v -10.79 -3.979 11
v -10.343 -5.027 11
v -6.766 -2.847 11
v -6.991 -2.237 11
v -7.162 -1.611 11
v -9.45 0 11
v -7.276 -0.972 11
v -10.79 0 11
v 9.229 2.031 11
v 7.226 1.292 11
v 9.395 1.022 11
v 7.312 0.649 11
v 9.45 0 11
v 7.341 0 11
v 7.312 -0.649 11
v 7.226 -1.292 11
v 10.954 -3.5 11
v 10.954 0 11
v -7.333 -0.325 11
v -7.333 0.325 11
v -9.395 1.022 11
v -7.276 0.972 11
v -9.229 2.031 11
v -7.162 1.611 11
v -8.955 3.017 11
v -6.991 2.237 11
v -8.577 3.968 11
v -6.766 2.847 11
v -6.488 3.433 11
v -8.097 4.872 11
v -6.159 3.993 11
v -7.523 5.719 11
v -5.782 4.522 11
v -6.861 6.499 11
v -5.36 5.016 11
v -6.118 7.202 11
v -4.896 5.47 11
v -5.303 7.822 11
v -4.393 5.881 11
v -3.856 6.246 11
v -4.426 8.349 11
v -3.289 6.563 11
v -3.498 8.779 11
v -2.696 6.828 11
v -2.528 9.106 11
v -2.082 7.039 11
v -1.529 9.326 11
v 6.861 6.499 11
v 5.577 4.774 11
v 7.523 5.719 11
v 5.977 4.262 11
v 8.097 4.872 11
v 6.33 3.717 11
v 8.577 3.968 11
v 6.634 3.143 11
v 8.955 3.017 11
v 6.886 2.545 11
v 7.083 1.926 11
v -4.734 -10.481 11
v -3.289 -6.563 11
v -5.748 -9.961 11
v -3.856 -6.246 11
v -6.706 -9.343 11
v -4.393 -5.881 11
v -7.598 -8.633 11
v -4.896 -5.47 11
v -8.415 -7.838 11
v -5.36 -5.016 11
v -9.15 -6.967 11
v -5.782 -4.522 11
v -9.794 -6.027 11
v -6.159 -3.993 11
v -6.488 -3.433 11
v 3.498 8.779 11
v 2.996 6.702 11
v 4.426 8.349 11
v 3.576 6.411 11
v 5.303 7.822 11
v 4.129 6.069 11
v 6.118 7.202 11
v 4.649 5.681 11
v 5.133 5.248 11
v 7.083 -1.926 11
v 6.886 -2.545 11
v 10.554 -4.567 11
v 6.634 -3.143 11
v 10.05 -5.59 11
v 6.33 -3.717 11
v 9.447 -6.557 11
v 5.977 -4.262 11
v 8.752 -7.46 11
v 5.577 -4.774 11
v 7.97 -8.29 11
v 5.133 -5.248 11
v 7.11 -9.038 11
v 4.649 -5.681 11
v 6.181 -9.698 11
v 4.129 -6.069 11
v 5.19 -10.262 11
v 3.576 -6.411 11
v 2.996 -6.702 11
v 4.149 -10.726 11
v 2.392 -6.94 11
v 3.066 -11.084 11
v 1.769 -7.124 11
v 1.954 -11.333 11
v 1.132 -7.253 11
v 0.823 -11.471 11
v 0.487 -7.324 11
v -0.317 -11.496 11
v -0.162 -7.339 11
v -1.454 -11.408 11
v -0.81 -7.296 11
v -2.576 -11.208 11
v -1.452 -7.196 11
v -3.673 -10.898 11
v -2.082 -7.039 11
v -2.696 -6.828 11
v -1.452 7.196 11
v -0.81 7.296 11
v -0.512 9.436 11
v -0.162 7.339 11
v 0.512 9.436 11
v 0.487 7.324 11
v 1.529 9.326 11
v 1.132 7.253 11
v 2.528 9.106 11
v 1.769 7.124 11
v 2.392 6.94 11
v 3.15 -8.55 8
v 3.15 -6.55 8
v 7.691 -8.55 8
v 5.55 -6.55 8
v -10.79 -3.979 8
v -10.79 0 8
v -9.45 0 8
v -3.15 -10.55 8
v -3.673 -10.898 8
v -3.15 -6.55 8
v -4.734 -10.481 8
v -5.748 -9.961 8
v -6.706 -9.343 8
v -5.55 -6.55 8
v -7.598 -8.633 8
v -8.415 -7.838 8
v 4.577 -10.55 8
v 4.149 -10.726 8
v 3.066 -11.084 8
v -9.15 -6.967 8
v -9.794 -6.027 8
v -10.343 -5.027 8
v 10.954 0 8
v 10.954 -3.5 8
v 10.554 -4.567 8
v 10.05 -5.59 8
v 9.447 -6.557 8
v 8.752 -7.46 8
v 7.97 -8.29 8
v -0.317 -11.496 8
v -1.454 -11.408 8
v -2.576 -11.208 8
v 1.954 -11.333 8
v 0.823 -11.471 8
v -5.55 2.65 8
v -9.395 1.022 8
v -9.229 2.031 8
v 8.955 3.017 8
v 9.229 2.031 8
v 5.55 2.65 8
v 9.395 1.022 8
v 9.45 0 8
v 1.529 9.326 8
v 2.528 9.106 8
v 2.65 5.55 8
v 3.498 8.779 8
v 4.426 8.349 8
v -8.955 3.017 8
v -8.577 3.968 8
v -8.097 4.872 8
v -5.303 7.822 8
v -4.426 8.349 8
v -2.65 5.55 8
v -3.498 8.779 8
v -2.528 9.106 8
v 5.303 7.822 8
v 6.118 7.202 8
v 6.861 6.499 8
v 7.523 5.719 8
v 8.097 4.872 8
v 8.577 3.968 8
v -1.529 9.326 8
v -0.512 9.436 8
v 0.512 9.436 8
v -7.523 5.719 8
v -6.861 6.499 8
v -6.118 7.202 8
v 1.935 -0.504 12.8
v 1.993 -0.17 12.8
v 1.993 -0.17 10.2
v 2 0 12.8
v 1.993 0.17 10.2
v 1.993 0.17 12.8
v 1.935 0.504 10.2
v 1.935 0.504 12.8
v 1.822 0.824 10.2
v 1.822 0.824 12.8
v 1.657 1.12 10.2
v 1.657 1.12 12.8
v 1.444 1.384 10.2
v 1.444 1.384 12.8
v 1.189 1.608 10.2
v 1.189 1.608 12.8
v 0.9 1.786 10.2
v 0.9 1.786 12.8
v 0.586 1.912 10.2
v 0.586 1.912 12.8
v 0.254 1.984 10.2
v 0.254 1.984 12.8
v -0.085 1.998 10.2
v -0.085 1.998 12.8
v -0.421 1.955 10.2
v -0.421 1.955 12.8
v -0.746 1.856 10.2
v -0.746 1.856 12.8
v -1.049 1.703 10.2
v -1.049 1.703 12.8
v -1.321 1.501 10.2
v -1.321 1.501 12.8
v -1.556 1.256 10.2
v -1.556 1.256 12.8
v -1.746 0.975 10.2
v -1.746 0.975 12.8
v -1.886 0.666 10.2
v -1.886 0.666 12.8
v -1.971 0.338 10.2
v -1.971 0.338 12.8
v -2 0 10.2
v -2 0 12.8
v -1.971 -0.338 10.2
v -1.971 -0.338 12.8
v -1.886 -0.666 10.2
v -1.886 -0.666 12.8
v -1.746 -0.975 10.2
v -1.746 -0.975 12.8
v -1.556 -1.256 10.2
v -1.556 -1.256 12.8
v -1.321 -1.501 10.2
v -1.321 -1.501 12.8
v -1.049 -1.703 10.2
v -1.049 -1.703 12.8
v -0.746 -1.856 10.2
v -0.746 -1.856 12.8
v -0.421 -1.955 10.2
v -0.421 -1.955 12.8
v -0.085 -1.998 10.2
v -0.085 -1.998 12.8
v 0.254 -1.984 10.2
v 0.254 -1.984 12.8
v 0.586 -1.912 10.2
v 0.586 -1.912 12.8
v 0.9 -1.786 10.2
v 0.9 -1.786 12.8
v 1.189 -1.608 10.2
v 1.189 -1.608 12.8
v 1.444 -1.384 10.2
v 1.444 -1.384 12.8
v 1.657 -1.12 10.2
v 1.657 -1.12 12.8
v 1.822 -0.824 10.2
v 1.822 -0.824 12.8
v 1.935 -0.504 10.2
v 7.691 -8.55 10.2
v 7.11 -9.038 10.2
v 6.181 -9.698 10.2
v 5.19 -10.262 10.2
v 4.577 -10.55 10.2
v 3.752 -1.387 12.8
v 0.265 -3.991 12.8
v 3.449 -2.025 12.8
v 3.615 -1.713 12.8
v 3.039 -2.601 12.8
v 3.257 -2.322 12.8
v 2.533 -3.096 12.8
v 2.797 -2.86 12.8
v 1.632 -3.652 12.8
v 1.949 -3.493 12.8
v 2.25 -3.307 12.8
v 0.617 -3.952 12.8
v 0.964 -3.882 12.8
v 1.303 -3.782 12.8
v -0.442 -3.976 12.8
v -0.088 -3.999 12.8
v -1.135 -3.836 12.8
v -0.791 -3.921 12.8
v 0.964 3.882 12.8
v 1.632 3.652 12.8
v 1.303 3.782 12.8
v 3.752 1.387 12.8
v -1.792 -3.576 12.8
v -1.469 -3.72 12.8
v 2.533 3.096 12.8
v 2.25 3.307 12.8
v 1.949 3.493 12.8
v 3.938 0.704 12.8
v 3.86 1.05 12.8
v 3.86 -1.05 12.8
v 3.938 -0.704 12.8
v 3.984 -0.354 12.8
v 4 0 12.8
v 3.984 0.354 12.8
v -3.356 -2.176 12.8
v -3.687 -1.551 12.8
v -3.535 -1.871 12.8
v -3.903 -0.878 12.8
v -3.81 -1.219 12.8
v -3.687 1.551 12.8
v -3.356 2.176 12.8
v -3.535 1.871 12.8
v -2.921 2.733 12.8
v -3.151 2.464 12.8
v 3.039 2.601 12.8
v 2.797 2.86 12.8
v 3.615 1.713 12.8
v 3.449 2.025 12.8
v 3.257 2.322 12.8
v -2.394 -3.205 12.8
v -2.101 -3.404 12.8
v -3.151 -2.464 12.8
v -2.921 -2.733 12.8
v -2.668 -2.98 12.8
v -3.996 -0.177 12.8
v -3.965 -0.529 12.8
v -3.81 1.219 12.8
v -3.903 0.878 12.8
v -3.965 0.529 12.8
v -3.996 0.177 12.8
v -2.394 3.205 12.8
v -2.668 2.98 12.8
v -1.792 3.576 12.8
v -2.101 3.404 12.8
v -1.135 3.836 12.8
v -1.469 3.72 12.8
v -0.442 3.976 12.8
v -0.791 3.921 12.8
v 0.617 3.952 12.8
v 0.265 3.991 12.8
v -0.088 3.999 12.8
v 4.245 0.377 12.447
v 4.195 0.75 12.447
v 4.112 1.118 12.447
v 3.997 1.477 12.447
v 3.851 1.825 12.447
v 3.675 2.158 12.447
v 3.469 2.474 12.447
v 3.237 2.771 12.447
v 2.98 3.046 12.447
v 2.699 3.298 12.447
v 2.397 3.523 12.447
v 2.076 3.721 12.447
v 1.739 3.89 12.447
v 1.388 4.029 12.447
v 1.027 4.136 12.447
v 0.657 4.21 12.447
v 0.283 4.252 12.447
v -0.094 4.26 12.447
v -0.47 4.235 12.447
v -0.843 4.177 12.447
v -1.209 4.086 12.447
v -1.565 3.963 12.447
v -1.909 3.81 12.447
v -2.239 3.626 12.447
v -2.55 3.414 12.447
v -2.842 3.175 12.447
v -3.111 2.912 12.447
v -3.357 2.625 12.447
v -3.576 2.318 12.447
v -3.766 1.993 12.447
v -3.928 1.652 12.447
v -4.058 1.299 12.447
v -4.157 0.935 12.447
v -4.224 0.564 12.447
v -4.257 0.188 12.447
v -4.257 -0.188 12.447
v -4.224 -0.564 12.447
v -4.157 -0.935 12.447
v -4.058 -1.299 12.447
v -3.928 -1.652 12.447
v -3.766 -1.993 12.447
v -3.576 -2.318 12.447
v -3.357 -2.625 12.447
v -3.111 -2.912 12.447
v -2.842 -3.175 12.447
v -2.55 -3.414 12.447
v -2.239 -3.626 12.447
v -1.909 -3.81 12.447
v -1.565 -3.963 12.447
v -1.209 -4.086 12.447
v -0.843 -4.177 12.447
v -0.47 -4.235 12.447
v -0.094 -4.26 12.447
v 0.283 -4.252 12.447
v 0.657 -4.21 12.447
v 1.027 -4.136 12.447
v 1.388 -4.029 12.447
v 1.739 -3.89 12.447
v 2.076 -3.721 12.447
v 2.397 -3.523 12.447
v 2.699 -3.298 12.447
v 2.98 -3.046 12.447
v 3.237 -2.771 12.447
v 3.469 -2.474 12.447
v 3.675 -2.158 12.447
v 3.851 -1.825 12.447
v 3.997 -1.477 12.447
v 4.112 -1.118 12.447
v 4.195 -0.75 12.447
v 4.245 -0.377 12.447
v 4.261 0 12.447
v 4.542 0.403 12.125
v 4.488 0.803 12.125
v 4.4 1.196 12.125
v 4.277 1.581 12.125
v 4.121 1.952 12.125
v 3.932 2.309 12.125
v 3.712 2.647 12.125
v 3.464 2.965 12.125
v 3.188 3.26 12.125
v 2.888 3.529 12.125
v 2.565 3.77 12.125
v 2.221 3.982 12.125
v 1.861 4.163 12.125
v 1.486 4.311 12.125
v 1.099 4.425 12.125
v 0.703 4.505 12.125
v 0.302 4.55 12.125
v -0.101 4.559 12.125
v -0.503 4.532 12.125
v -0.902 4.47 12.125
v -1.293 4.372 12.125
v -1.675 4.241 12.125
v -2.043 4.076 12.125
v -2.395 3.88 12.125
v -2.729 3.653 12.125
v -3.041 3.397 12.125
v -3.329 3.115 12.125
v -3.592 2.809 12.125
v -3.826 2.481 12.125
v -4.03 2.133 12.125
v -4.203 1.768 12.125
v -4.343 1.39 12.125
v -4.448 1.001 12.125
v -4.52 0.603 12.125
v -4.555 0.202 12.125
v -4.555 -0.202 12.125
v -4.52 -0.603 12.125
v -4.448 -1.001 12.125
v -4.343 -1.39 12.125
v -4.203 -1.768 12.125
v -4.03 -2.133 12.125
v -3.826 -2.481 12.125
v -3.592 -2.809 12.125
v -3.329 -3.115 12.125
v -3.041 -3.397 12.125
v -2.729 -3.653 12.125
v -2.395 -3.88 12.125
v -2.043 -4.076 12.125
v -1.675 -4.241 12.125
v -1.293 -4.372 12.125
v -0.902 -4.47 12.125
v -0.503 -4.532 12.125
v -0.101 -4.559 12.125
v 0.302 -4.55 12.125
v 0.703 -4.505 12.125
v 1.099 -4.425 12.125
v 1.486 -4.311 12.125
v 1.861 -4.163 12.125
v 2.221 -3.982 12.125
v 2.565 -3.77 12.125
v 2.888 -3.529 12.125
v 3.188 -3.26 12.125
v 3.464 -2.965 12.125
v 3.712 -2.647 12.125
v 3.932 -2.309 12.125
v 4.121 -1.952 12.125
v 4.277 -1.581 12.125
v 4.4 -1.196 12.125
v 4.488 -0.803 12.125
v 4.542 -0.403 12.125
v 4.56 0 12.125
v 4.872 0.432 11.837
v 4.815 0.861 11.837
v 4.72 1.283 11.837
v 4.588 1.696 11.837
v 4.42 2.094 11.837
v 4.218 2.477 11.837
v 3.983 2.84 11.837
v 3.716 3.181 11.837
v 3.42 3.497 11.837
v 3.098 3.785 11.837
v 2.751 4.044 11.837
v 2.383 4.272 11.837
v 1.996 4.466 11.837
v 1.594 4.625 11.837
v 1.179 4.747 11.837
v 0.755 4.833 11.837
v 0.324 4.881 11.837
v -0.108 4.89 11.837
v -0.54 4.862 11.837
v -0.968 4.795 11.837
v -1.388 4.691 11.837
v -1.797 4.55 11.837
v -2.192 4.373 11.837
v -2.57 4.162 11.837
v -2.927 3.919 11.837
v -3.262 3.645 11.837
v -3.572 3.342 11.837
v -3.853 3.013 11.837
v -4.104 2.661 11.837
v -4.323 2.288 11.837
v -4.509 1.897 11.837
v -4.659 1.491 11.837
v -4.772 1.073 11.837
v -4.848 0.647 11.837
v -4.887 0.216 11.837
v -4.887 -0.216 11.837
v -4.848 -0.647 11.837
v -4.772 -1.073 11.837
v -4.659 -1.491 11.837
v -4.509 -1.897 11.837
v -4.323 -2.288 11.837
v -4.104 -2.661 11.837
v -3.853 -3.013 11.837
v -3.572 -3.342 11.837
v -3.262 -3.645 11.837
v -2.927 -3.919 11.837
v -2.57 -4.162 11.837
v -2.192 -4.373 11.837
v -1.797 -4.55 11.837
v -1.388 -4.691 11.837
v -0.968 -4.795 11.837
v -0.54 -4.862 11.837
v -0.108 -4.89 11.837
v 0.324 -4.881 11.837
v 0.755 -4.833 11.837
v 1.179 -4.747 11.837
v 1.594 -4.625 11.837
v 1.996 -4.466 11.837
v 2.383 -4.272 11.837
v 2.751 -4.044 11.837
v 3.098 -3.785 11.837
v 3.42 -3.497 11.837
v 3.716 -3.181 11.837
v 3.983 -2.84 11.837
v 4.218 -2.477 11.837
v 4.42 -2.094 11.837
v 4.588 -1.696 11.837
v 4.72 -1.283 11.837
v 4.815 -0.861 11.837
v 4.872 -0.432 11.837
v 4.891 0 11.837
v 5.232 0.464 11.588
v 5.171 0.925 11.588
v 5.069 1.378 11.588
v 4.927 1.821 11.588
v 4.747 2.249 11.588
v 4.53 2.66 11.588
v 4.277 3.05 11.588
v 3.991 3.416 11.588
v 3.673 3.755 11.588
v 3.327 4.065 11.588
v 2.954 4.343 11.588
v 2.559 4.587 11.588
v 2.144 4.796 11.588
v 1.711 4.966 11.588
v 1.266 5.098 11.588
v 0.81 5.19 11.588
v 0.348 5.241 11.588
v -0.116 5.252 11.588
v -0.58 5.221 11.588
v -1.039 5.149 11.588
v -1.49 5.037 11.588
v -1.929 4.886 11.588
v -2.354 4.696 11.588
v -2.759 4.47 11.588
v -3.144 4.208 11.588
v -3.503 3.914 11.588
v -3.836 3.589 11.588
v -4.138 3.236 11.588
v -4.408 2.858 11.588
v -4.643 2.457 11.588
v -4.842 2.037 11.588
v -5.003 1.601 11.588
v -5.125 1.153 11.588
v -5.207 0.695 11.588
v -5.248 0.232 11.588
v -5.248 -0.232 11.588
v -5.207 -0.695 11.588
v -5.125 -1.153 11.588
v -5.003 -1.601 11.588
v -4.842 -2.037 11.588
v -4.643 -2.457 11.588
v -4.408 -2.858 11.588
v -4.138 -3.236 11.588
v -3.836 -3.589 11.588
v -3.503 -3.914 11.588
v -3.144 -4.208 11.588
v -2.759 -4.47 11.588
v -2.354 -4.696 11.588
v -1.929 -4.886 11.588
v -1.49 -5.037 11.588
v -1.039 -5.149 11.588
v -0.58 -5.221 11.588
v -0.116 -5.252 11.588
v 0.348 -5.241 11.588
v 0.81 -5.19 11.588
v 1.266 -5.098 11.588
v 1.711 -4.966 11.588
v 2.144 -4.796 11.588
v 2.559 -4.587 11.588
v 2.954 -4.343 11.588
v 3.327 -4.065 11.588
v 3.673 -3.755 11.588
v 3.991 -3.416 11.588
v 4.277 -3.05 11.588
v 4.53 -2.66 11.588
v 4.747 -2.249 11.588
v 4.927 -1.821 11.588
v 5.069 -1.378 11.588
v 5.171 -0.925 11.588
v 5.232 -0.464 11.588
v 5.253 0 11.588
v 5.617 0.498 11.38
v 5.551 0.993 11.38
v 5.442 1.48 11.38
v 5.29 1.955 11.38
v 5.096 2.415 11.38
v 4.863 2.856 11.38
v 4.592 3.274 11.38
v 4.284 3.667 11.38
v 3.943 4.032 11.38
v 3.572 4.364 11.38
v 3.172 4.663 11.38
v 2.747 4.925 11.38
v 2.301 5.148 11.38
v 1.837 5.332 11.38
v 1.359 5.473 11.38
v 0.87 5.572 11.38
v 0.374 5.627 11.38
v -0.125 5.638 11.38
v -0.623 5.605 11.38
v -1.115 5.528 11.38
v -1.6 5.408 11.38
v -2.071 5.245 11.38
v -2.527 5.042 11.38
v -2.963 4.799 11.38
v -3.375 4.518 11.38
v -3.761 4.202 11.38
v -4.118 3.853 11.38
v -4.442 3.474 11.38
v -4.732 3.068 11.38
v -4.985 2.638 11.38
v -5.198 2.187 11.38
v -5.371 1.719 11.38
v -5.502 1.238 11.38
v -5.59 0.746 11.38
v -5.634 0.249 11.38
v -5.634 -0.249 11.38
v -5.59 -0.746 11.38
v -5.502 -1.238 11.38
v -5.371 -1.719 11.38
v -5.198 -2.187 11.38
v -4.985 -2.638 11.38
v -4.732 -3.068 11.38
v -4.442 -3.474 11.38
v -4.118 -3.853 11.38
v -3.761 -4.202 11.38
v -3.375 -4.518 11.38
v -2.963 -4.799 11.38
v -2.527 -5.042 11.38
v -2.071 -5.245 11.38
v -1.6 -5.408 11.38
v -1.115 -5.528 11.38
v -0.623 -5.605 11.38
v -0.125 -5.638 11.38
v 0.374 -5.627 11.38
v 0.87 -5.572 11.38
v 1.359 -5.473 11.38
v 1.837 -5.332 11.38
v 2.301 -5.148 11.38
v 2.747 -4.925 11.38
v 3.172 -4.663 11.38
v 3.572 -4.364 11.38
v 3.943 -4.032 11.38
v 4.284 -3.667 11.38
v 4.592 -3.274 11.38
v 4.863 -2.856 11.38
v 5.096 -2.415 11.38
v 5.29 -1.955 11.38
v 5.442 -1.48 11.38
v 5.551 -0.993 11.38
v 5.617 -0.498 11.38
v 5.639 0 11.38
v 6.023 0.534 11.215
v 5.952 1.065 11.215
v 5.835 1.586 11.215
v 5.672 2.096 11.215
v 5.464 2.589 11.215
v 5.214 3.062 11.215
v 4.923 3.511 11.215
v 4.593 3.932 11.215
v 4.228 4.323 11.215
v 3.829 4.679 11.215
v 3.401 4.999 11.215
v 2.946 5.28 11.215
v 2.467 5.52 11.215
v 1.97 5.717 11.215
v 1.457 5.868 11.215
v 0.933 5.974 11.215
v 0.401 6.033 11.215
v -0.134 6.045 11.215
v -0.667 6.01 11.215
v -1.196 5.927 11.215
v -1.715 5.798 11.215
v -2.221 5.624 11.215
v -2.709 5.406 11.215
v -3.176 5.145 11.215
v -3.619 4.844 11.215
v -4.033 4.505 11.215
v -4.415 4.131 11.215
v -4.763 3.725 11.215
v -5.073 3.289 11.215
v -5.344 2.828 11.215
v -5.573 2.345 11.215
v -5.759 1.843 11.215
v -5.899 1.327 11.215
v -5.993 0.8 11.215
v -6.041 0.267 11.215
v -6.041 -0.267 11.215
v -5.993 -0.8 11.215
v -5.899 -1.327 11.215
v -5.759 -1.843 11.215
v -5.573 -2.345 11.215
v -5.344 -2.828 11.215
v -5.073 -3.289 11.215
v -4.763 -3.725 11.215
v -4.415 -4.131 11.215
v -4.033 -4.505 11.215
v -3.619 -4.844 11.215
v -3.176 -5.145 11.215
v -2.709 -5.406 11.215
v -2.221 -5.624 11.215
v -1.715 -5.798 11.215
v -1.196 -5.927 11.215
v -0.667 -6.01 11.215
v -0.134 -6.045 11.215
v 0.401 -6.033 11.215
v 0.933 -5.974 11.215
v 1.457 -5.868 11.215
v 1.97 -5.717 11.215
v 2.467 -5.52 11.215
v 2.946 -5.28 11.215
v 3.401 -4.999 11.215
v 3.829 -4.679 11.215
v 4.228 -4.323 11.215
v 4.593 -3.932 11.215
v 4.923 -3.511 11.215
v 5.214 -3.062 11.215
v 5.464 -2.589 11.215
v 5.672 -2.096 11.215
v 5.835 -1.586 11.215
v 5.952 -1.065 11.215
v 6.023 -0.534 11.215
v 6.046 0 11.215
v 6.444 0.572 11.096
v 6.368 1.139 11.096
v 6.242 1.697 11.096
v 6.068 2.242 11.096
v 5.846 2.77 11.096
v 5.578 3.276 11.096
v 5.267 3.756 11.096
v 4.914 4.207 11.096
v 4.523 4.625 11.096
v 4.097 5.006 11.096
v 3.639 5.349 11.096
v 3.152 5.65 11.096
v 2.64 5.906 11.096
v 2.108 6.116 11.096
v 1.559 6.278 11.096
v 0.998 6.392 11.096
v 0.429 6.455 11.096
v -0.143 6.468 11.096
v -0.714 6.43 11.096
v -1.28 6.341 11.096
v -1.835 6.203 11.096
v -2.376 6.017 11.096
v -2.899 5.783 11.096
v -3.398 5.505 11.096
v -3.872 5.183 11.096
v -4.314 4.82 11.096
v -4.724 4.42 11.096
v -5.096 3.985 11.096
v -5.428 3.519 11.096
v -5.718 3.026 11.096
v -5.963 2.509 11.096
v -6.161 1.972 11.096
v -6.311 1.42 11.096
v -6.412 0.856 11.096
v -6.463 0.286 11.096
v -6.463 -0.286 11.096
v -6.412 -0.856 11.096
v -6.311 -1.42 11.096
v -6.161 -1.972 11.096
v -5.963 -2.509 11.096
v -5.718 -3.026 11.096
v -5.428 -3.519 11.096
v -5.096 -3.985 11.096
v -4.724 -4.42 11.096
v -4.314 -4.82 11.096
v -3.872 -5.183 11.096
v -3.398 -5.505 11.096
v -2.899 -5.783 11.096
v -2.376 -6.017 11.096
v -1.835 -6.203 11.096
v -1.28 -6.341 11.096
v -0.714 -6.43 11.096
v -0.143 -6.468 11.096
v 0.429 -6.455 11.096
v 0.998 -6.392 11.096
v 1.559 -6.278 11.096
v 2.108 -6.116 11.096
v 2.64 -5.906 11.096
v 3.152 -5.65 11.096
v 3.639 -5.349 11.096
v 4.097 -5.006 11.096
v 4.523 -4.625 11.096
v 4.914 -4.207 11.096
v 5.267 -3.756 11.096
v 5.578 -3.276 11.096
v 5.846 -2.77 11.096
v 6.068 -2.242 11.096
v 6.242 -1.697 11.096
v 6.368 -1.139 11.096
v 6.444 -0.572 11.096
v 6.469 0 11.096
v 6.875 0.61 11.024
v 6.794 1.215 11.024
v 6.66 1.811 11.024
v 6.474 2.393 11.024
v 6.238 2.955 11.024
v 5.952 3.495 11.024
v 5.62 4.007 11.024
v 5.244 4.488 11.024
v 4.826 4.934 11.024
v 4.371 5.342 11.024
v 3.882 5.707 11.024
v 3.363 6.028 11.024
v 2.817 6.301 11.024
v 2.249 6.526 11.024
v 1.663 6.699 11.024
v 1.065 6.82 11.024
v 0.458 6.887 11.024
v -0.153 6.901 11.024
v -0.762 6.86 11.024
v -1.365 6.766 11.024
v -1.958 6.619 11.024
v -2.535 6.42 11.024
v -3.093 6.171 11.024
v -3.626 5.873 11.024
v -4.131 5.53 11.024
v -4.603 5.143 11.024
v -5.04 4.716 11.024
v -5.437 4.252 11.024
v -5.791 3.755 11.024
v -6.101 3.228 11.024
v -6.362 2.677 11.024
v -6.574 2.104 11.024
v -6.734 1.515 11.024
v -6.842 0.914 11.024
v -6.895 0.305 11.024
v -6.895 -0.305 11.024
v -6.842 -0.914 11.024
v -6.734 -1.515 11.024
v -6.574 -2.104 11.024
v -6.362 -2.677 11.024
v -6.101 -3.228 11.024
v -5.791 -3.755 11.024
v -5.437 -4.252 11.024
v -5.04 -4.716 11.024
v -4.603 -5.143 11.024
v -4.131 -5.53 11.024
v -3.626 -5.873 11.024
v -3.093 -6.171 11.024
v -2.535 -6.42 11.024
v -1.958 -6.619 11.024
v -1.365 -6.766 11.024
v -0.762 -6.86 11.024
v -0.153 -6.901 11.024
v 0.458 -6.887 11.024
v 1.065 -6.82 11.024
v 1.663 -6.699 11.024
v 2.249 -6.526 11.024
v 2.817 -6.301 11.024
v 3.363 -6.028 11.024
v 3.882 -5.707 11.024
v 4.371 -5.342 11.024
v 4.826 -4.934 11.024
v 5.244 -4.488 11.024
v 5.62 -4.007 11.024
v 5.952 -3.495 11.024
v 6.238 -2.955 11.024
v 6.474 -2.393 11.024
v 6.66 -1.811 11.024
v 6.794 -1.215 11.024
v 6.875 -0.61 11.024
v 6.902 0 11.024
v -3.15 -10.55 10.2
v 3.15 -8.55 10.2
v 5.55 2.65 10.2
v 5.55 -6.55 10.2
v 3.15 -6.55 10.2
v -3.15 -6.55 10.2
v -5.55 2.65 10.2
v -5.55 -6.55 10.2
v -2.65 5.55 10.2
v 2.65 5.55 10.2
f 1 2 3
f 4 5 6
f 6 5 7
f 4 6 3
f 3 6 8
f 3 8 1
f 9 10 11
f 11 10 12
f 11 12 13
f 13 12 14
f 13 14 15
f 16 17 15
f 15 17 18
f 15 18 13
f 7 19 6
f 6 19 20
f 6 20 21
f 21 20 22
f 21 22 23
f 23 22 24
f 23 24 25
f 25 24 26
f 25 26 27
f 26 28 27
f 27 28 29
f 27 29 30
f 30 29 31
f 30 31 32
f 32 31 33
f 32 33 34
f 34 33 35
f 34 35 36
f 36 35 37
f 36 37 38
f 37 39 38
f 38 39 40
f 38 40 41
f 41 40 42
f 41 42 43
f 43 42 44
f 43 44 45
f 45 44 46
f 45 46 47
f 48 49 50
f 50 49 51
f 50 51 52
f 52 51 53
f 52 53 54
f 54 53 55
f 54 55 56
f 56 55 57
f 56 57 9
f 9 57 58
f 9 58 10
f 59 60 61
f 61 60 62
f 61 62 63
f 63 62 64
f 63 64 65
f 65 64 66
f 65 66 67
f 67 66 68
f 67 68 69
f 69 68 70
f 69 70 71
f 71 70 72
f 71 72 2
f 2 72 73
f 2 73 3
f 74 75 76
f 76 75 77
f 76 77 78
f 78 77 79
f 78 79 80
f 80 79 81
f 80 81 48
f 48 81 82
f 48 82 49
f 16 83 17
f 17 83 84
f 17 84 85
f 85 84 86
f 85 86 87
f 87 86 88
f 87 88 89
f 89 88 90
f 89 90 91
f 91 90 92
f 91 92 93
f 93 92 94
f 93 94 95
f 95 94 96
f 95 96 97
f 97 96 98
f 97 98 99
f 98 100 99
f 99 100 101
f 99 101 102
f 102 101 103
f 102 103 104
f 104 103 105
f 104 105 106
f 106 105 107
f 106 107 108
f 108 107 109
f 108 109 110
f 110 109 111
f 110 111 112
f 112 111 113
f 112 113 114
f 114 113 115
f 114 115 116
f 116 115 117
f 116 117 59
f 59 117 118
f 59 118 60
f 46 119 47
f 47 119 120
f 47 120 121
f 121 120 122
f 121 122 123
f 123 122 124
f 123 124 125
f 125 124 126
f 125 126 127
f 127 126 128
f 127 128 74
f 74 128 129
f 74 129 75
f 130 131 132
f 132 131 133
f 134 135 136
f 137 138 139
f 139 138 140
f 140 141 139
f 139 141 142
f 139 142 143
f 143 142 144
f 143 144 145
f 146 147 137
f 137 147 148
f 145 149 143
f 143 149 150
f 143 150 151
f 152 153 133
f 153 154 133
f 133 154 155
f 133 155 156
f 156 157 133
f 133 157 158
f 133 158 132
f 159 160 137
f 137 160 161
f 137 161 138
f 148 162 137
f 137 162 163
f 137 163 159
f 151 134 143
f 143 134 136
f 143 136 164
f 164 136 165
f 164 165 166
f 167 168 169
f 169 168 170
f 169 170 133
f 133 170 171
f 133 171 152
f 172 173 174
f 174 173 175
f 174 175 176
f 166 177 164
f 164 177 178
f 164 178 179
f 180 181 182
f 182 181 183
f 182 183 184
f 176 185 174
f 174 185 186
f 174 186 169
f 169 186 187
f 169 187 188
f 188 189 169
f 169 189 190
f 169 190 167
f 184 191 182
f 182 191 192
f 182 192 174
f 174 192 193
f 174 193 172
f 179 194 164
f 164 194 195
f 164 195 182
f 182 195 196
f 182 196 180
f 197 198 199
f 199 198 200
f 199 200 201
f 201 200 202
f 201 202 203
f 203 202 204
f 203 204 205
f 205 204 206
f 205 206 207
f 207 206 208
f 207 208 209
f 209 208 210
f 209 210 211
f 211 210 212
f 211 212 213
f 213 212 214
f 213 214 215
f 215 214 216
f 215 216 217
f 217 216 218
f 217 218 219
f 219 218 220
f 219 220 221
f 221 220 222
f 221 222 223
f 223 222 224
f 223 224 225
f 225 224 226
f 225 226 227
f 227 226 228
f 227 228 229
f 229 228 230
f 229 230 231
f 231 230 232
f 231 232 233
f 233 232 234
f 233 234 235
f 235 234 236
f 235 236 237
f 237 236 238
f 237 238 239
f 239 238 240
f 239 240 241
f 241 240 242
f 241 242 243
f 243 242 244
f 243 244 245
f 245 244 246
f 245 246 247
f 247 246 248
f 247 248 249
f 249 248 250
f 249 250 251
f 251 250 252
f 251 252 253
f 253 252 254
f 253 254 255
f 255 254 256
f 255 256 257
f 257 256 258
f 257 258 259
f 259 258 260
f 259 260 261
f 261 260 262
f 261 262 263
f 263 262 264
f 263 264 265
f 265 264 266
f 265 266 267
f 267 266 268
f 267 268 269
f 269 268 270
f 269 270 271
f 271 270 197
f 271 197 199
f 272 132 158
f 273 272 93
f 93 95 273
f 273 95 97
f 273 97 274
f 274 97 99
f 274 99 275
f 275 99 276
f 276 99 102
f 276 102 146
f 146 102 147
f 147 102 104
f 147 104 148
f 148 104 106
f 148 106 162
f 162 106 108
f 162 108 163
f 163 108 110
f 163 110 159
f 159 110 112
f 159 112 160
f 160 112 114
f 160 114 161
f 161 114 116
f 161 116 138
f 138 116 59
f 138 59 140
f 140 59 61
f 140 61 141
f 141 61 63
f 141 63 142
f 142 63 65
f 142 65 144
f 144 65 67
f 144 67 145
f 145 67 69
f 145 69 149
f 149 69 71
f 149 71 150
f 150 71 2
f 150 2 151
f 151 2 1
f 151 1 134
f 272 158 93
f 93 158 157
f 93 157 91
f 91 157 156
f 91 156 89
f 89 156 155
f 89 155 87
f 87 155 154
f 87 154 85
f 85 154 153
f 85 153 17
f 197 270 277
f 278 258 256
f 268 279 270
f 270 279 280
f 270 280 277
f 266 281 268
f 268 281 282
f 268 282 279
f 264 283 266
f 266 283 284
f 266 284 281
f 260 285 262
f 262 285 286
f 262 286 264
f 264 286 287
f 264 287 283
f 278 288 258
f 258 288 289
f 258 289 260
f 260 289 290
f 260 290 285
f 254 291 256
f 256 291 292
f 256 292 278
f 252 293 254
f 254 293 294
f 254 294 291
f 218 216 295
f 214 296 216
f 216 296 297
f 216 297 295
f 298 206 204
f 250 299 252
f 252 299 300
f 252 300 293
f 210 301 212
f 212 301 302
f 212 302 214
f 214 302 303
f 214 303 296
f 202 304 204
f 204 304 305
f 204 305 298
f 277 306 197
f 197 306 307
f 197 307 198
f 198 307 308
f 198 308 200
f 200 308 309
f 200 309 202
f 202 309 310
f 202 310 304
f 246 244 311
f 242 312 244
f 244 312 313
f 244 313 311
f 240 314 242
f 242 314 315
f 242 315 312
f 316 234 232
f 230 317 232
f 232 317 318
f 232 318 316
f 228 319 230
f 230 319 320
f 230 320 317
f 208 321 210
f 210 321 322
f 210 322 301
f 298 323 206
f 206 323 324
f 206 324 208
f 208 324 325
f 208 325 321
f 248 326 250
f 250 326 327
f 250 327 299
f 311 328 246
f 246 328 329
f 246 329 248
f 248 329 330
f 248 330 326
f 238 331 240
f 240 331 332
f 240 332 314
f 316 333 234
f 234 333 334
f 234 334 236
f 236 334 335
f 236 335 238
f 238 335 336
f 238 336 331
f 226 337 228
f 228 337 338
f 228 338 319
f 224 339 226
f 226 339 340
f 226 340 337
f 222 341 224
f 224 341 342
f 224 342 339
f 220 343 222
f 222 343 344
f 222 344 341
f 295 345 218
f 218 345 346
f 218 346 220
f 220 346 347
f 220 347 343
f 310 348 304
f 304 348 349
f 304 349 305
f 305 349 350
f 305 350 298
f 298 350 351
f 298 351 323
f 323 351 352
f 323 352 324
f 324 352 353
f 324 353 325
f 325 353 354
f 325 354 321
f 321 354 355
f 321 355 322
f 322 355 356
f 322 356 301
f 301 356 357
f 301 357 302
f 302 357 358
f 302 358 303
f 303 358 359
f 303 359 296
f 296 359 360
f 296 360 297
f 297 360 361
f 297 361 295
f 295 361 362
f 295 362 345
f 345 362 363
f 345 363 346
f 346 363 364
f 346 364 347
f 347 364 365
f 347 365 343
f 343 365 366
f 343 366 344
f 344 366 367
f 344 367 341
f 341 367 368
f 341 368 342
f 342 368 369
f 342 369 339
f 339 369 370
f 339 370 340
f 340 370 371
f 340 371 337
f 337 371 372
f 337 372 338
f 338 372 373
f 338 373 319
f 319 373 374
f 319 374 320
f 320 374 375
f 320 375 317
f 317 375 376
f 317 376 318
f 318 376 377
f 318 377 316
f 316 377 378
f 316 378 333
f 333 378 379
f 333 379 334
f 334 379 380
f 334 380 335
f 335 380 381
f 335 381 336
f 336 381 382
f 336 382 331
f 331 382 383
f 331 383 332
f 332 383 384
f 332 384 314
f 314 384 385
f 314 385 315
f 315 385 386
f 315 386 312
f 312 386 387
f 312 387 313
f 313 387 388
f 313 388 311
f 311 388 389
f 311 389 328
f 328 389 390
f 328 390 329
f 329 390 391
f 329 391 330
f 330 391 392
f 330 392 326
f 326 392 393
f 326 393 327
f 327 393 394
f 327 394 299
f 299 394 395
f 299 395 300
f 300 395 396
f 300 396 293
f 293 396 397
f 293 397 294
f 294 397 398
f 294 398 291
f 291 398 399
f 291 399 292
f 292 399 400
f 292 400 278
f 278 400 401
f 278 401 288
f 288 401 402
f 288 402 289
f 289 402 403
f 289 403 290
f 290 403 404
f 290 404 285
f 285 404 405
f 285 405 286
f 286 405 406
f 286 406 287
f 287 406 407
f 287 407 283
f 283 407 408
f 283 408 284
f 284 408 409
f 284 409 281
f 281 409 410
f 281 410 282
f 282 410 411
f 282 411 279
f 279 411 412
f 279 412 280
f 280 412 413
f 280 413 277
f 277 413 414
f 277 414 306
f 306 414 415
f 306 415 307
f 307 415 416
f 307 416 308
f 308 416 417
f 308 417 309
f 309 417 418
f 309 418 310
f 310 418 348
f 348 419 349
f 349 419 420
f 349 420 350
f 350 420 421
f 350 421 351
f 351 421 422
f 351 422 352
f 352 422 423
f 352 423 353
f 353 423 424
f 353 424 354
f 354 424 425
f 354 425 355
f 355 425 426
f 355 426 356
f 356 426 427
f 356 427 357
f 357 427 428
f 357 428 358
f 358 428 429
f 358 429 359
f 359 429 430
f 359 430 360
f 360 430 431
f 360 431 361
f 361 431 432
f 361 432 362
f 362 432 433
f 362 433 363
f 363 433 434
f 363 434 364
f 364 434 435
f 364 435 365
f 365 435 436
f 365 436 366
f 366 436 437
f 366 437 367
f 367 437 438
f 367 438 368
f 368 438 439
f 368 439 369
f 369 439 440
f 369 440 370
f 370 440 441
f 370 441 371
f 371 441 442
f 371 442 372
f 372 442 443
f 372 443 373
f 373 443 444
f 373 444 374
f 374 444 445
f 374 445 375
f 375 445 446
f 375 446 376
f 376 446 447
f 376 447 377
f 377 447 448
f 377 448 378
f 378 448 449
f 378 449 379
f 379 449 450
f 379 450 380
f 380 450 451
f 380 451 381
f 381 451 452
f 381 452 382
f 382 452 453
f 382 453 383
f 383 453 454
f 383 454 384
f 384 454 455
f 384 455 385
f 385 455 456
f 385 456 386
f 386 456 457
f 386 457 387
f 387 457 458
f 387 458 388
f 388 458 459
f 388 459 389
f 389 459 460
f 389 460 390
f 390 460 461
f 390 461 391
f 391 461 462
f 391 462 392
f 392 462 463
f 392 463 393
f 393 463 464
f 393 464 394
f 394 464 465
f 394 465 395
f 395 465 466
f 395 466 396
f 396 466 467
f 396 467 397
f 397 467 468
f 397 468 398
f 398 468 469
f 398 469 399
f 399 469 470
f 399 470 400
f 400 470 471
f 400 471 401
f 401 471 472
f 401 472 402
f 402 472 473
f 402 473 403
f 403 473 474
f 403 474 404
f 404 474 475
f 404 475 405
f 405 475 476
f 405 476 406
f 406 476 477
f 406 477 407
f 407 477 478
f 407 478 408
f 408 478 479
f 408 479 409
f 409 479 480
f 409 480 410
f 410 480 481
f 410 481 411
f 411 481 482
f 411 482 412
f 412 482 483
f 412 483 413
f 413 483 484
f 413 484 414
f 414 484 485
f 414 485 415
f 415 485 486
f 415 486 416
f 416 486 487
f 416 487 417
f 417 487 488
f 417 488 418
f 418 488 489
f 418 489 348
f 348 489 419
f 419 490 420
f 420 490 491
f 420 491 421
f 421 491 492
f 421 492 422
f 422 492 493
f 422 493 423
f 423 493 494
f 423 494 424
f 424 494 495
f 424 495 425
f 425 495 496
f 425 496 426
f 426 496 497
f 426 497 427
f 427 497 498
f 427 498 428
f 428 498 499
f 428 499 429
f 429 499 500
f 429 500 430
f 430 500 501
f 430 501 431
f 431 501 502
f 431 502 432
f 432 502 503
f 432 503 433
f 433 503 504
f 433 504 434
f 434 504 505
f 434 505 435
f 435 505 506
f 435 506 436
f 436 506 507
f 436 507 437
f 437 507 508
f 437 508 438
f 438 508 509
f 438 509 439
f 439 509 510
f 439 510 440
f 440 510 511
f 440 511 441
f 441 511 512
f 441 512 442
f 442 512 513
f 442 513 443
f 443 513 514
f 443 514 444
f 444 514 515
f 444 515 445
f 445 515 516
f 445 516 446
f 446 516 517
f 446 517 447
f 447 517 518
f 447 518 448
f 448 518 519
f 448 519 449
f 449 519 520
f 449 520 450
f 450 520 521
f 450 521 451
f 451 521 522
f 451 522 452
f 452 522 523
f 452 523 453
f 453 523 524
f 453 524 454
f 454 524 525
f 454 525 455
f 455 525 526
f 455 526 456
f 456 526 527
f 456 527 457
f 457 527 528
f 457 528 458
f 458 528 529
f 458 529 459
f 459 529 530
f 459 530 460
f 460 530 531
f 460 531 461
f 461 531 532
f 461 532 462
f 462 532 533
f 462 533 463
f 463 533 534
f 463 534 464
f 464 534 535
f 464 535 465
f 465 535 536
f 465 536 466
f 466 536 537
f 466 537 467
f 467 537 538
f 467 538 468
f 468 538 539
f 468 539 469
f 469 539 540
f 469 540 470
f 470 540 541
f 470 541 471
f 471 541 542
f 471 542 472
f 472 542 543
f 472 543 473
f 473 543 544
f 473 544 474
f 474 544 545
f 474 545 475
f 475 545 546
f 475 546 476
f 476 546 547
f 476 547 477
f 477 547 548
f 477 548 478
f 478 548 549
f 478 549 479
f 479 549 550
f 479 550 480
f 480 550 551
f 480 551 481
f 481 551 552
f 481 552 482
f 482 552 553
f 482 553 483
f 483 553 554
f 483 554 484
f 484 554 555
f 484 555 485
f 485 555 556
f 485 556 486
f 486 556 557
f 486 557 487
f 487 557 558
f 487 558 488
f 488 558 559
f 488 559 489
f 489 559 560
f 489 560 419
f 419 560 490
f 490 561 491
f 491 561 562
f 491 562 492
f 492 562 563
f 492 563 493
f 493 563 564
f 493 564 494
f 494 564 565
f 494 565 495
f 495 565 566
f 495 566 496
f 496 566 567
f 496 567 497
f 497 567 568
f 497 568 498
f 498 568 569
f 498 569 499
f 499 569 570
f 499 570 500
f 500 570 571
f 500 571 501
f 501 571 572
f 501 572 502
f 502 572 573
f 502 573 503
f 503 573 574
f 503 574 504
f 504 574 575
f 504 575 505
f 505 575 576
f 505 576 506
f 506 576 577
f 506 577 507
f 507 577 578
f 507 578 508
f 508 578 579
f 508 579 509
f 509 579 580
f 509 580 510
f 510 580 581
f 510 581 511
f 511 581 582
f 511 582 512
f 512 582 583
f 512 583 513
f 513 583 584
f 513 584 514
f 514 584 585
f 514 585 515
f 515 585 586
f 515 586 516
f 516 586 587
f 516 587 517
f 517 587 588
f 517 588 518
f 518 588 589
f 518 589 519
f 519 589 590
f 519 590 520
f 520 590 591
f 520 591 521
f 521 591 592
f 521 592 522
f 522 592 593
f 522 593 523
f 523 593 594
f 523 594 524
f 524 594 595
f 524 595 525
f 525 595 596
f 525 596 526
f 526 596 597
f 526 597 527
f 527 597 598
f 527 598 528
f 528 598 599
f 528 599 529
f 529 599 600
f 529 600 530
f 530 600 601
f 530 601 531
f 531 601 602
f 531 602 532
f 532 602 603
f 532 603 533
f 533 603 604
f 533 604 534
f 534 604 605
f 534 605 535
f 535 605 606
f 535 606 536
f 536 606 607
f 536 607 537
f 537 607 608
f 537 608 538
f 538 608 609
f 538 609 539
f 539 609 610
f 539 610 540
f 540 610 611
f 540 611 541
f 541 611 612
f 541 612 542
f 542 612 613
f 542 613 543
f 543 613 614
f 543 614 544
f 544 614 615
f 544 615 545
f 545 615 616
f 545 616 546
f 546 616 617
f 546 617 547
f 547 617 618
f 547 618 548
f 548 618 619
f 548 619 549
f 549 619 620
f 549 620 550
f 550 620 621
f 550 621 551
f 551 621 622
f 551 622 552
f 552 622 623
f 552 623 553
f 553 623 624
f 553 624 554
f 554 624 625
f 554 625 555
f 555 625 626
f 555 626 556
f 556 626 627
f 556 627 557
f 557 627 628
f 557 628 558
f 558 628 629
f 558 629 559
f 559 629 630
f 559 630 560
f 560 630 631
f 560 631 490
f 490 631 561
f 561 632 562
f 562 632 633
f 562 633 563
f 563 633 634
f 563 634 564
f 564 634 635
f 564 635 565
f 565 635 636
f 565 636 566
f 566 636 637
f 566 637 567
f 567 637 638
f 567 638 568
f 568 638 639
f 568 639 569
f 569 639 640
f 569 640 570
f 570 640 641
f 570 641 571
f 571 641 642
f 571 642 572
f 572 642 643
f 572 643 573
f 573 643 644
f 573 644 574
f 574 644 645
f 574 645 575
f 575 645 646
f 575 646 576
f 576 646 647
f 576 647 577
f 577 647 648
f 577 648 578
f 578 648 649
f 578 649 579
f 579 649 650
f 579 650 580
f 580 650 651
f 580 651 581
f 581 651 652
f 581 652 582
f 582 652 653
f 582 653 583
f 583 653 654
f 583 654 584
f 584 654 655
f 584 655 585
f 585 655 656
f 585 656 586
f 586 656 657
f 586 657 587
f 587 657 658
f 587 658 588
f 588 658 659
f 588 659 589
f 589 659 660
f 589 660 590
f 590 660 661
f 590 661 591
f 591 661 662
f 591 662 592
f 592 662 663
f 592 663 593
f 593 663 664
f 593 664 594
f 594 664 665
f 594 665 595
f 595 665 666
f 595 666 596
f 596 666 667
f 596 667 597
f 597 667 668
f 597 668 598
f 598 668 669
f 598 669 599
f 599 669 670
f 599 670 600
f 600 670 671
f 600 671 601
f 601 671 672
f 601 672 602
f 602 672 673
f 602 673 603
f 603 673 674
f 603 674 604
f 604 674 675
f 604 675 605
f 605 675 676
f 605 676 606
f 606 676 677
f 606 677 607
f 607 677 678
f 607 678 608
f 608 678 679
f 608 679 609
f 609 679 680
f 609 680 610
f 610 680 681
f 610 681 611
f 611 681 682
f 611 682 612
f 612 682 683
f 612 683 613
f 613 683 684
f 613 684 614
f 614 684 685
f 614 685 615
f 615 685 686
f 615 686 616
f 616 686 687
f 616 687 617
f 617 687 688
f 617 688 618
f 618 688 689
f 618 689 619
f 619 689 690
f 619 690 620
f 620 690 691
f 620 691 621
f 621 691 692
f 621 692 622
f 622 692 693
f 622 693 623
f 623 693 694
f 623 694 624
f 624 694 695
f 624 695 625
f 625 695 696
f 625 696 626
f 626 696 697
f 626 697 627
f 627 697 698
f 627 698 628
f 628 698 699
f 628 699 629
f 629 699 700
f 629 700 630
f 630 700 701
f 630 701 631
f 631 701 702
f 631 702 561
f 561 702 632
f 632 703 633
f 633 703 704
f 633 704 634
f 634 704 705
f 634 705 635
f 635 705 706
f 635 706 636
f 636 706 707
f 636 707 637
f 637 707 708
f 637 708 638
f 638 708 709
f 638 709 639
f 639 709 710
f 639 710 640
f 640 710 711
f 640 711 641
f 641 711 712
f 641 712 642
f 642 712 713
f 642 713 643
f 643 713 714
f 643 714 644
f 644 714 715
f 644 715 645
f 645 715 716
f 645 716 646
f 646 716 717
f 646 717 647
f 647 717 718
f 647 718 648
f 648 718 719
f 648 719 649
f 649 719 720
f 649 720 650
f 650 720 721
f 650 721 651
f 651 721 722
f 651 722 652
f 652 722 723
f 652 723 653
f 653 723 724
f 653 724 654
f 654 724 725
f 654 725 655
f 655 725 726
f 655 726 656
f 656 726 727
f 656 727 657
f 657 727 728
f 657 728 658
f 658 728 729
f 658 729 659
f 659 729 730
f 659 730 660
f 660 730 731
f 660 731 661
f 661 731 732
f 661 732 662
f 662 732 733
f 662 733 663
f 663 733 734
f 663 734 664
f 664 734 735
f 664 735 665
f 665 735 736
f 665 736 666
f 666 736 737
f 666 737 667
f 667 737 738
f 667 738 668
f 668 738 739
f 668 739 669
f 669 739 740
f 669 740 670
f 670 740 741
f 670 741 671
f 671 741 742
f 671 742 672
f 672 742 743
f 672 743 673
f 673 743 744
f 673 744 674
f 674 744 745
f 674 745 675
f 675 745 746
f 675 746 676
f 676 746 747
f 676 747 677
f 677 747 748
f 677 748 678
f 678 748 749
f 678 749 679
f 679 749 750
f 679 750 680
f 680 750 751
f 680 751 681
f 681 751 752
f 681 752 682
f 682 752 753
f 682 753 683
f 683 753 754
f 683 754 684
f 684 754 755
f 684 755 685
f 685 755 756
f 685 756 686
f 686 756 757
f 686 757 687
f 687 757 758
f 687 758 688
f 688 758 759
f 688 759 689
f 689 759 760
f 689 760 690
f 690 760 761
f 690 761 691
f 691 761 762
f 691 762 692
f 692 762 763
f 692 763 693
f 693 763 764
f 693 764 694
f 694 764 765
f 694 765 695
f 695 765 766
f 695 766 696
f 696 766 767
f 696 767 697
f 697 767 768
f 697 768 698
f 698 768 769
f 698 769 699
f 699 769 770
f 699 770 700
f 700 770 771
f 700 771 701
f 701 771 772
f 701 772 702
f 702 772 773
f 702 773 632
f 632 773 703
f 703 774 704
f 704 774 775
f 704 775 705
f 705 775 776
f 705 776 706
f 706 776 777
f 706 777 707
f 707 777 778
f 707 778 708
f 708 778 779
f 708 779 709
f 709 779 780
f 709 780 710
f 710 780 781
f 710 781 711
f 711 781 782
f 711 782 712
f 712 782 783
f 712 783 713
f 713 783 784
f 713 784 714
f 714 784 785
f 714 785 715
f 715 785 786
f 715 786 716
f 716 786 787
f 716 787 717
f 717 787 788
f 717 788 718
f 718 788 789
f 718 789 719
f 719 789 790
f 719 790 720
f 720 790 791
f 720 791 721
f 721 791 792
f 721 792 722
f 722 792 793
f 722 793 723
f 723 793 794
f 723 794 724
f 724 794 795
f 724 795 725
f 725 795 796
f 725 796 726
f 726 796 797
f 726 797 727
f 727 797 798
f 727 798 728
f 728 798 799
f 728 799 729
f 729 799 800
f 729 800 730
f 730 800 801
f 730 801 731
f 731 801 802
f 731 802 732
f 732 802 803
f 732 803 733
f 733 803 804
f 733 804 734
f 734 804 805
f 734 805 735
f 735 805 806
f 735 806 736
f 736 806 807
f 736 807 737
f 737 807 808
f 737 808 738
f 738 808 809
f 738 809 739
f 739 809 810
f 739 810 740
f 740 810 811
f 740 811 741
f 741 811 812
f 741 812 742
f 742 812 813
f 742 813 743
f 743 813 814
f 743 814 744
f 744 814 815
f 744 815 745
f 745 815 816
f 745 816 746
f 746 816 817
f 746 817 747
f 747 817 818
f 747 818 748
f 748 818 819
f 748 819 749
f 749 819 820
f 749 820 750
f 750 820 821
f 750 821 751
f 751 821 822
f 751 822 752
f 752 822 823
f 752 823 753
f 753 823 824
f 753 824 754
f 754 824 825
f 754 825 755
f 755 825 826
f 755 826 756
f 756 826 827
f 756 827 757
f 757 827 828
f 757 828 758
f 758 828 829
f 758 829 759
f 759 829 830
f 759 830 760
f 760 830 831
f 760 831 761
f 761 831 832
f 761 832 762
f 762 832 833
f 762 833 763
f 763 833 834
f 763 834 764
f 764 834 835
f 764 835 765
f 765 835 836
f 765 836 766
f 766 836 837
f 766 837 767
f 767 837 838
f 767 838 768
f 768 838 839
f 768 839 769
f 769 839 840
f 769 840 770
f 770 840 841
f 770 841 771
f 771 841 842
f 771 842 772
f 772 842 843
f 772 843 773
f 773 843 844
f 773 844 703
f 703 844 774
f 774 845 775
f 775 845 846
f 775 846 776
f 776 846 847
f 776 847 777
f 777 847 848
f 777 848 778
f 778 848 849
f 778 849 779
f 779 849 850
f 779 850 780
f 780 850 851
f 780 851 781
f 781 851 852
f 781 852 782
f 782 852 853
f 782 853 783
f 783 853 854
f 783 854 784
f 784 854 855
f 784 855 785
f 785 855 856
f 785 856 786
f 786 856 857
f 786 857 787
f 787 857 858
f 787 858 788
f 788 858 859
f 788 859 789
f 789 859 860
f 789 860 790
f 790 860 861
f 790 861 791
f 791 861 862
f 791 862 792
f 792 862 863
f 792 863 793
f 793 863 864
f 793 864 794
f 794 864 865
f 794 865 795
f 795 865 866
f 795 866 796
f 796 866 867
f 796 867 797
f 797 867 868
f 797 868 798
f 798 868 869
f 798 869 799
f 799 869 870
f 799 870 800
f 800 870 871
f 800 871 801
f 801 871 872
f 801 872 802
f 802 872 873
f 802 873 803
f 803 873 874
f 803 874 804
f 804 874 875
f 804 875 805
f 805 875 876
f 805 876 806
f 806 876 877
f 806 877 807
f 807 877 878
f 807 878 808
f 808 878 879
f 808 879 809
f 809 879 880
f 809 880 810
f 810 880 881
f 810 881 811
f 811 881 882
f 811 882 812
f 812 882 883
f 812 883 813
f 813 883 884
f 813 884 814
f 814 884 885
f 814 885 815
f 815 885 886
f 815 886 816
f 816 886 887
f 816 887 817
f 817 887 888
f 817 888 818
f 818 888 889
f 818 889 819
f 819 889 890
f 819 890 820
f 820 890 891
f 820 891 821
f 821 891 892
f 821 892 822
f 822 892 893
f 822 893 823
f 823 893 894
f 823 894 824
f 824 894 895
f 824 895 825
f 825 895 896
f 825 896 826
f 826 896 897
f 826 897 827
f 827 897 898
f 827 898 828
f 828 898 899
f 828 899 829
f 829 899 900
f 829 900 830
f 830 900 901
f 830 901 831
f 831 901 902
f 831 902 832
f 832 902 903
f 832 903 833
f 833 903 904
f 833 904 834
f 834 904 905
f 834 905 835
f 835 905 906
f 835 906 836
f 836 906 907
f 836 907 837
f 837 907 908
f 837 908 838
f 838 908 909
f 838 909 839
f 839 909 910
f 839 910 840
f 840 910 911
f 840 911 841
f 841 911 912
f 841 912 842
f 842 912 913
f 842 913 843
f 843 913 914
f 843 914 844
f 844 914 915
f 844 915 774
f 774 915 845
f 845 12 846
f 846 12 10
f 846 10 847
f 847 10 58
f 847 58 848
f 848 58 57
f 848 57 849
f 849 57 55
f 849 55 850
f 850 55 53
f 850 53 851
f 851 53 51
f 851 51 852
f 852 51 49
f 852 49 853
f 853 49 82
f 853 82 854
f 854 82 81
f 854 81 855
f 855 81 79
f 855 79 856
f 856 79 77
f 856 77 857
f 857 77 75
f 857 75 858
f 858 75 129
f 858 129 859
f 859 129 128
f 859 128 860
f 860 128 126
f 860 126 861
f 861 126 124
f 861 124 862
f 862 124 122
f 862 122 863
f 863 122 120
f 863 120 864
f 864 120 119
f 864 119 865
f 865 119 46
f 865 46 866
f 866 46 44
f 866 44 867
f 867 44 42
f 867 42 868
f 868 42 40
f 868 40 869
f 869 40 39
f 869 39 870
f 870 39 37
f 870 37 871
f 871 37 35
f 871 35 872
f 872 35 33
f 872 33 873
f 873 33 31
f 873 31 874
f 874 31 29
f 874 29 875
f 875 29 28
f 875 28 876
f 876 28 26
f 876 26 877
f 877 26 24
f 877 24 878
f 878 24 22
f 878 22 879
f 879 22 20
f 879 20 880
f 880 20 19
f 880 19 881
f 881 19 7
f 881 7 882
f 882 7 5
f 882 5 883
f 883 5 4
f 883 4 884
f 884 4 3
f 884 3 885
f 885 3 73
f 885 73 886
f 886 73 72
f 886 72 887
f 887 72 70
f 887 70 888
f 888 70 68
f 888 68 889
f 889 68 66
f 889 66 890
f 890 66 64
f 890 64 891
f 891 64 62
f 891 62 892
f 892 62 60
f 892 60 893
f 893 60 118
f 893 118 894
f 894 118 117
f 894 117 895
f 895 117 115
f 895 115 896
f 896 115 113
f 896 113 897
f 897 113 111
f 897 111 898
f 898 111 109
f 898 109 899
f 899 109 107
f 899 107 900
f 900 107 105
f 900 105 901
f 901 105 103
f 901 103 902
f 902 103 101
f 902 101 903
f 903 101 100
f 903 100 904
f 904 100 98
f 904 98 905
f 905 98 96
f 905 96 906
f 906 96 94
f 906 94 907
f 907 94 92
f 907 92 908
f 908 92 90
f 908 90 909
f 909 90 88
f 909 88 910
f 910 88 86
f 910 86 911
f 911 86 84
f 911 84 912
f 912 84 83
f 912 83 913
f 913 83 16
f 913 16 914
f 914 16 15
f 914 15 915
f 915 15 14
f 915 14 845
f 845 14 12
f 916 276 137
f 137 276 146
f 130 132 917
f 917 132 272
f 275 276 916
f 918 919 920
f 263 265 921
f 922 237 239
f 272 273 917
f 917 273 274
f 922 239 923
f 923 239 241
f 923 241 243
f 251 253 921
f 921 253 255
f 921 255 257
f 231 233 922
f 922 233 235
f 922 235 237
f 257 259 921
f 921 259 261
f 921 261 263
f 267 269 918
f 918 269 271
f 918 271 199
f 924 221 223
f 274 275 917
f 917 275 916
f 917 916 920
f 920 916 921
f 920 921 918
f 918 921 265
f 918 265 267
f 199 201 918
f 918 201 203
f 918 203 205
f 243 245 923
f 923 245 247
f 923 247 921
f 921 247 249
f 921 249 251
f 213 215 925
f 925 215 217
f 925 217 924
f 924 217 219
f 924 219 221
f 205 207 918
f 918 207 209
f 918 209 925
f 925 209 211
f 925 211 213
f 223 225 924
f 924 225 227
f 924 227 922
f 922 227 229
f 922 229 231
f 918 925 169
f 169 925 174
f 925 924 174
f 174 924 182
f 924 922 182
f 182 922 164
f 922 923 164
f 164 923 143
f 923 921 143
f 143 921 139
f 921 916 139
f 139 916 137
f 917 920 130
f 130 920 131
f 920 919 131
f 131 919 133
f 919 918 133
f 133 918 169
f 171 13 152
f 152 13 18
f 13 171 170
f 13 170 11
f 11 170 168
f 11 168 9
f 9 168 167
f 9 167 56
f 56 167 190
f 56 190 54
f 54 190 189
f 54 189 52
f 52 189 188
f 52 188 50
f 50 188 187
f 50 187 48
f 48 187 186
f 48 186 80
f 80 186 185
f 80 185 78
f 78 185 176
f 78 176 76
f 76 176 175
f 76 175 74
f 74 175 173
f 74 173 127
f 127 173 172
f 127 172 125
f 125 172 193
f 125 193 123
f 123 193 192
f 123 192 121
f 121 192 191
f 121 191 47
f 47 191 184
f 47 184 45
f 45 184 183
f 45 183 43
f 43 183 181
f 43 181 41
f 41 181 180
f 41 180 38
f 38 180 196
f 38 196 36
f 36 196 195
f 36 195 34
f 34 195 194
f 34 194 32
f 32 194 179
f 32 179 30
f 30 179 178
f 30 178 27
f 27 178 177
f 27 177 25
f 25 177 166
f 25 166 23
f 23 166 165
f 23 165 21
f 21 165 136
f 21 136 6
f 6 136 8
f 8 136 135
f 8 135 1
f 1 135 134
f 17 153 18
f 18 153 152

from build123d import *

# Parameters (mm, degrees)
BOSS_EXTRUDE1_DEPTH = 15.3
SKETCH2_R           = 9.3
CUT_EXTRUDE1_DEPTH  = 3.1
BOSS_EXTRUDE2_START = 8
BOSS_EXTRUDE2_DEPTH = 8
BOSS_EXTRUDE3_START = 3
SKETCH4_R           = 2
BOSS_EXTRUDE3_DEPTH = 3
BOSS_EXTRUDE4_START = 1.8
SKETCH5_R           = 4
SKETCH5_R_2         = 2
BOSS_EXTRUDE4_DEPTH = 1.8
FILLET1_R           = 4
FILLET2_R           = 1
CUT_EXTRUDE2_START  = -2.2
SKETCH7_R           = 2
CUT_EXTRUDE2_DEPTH  = 2.2
SKETCH9_R           = 21.205552102
CUT_EXTRUDE4_DEPTH  = 23.3
SKETCH8_W           = 42.45562683
SKETCH8_H           = 26.950518874
CUT_EXTRUDE5_DEPTH  = 21.71696165
CUT_EXTRUDE6_DEPTH  = 10


with BuildPart() as part:
    # Sketch1 → Boss-Extrude1 (new body)
    with BuildSketch(Plane.XY):
        with BuildLine():
            Line((-8.55, 0), (-16.55, 0))
            Line((-16.55, 0), (-16.55, 3.5))
            Line((-16.55, 3.5), (-10.95445115, 3.5))
            ThreePointArc((-10.95445115, 3.5), (0, 11.5), (10.95445115, 3.5))
            Line((10.95445115, 3.5), (16.55, 3.5))
            Line((16.55, 3.5), (16.55, 0))
            Line((16.55, 0), (8.55, 0))
            ThreePointArc((8.55, 0), (0, 8.55), (-8.55, 0))
        make_face()
    extrude(amount=-BOSS_EXTRUDE1_DEPTH)

    # Sketch2 → Cut-Extrude1 (cut)
    with BuildSketch(Plane.XY.offset(-6.3)):
        Circle(SKETCH2_R)
    extrude(amount=-CUT_EXTRUDE1_DEPTH, mode=Mode.SUBTRACT)

    # Sketch3 → Boss-Extrude2 (add)
    with BuildSketch(Plane.XY.offset(BOSS_EXTRUDE2_START)):
        with BuildLine():
            Line((-10.25, 0), (-16.55, 0))
            Line((-16.55, 0), (-16.55, 3.5))
            Line((-16.55, 3.5), (-10.95445115, 3.5))
            ThreePointArc((-10.95445115, 3.5), (0, 11.5), (10.95445115, 3.5))
            Line((10.95445115, 3.5), (16.55, 3.5))
            Line((16.55, 3.5), (16.55, 0))
            Line((16.55, 0), (10.25, 0))
            ThreePointArc((10.25, 0), (0, 10.25), (-10.25, 0))
        make_face()
    extrude(amount=-BOSS_EXTRUDE2_DEPTH)

    # Sketch4 → Boss-Extrude3 (add)
    with BuildSketch(Plane.XY.offset(8).offset(BOSS_EXTRUDE3_START)):
        with BuildLine():
            Line((-11.5, 0), (-16.55, 0))
            Line((-16.55, 0), (-16.55, 3.5))
            Line((-16.55, 3.5), (-10.95445115, 3.5))
            ThreePointArc((-10.95445115, 3.5), (0, 11.5), (10.95445115, 3.5))
            Line((10.95445115, 3.5), (16.55, 3.5))
            Line((16.55, 3.5), (16.55, 0))
            Line((16.55, 0), (11.5, 0))
            ThreePointArc((11.5, 0), (0, -11.5), (-11.5, 0))
        make_face()
        Circle(SKETCH4_R, mode=Mode.SUBTRACT)
    extrude(amount=-BOSS_EXTRUDE3_DEPTH)

    # Sketch5 → Boss-Extrude4 (add)
    with BuildSketch(Plane.XY.offset(11).offset(BOSS_EXTRUDE4_START)):
        Circle(SKETCH5_R)
        Circle(SKETCH5_R_2, mode=Mode.SUBTRACT)
    extrude(amount=-BOSS_EXTRUDE4_DEPTH)

    # Fillet1
    # the kernel refuses this fillet: 4 mm, written as the material it adds along each edge
    with BuildSketch(Plane(origin=(0, 0, 11), x_dir=(1, 0, 0), z_dir=(0, -1, 0))) as fillet1_piece_1:
        with BuildLine():
            CenterArc((7.340658618, 4), FILLET1_R, 213.367012969, 56.632987031)
            Line((7.340658618, 0), (7.340658618, -0.08))
            Line((7.340658618, -0.08), (4, -0.08))
            Line((4, -0.08), (3.92, 0))
            ThreePointArc((3.92, 0), (3.92, 0.9), (3.933186828, 1.756))
            Line((3.933186828, 1.756), (4, 1.8))
        make_face()
    revolve(axis=Axis((0, 0, 11), (0, 0, 1)))

    # Fillet2
    fillet2_edges = [part.edges().sort_by_distance(p)[0] for p in [
        (0, 10.25, 8),
    ]]
    fillet(fillet2_edges, radius=FILLET2_R)

    # Sketch7 → Cut-Extrude2 (cut)
    with BuildSketch(Plane(origin=(0, 0, 8), x_dir=(-1, 0, 0), z_dir=(0, 0, -1)).offset(CUT_EXTRUDE2_START)):
        Polygon((5.55, 2.65), (5.55, -6.55), (3.15, -6.55), (3.15, -10.55), (-3.15, -10.55), (-6.775322586, -10.55), (-8.767406073, -8.55), (-3.15, -8.55), (-3.15, -6.55), (-5.55, -6.55), (-5.55, 2.65), (-2.65, 5.55), (2.65, 5.55), align=None)
        Circle(SKETCH7_R, mode=Mode.SUBTRACT)
    extrude(amount=CUT_EXTRUDE2_DEPTH, mode=Mode.SUBTRACT)

    # Sketch9 → Cut-Extrude4 (cut)
    with BuildSketch(Plane(origin=(0, 0, 8), x_dir=(-1, 0, 0), z_dir=(0, 0, -1))):
        Circle(SKETCH9_R)
    extrude(amount=CUT_EXTRUDE4_DEPTH, mode=Mode.SUBTRACT)

    # Sketch8 → Cut-Extrude5 (cut, through all)
    with BuildSketch(Plane(origin=(0, 0, 8), x_dir=(-1, 0, 0), z_dir=(0, 0, -1))):
        Rectangle(SKETCH8_W, SKETCH8_H)
        with BuildLine():
            Line((11.5, 0), (9.45, 0))
            ThreePointArc((9.45, 0), (0, 9.45), (-9.45, 0))
            Line((-9.45, 0), (-11.5, 0))
            ThreePointArc((-11.5, 0), (0, -11.5), (11.5, 0))
        make_face(mode=Mode.SUBTRACT)
    extrude(amount=-CUT_EXTRUDE5_DEPTH, mode=Mode.SUBTRACT)

    # Sketch10 → Cut-Extrude6 (cut)
    with BuildSketch(Plane.XY.offset(11)):
        with BuildLine():
            Line((-10.789833042, 0), (-10.789833042, -3.978630786))
            ThreePointArc((-10.789833042, -3.978630786), (-11.321066204, -2.020757286), (-11.5, 0))
            Line((-11.5, 0), (-10.789833042, 0))
        make_face()
        with BuildLine():
            Line((10.95445115, 0), (10.95445115, -3.5))
            ThreePointArc((10.95445115, -3.5), (11.362794292, -1.771131245), (11.5, 0))
            Line((11.5, 0), (10.95445115, 0))
        make_face()
    extrude(amount=-CUT_EXTRUDE6_DEPTH, mode=Mode.SUBTRACT)


solid = part.part
